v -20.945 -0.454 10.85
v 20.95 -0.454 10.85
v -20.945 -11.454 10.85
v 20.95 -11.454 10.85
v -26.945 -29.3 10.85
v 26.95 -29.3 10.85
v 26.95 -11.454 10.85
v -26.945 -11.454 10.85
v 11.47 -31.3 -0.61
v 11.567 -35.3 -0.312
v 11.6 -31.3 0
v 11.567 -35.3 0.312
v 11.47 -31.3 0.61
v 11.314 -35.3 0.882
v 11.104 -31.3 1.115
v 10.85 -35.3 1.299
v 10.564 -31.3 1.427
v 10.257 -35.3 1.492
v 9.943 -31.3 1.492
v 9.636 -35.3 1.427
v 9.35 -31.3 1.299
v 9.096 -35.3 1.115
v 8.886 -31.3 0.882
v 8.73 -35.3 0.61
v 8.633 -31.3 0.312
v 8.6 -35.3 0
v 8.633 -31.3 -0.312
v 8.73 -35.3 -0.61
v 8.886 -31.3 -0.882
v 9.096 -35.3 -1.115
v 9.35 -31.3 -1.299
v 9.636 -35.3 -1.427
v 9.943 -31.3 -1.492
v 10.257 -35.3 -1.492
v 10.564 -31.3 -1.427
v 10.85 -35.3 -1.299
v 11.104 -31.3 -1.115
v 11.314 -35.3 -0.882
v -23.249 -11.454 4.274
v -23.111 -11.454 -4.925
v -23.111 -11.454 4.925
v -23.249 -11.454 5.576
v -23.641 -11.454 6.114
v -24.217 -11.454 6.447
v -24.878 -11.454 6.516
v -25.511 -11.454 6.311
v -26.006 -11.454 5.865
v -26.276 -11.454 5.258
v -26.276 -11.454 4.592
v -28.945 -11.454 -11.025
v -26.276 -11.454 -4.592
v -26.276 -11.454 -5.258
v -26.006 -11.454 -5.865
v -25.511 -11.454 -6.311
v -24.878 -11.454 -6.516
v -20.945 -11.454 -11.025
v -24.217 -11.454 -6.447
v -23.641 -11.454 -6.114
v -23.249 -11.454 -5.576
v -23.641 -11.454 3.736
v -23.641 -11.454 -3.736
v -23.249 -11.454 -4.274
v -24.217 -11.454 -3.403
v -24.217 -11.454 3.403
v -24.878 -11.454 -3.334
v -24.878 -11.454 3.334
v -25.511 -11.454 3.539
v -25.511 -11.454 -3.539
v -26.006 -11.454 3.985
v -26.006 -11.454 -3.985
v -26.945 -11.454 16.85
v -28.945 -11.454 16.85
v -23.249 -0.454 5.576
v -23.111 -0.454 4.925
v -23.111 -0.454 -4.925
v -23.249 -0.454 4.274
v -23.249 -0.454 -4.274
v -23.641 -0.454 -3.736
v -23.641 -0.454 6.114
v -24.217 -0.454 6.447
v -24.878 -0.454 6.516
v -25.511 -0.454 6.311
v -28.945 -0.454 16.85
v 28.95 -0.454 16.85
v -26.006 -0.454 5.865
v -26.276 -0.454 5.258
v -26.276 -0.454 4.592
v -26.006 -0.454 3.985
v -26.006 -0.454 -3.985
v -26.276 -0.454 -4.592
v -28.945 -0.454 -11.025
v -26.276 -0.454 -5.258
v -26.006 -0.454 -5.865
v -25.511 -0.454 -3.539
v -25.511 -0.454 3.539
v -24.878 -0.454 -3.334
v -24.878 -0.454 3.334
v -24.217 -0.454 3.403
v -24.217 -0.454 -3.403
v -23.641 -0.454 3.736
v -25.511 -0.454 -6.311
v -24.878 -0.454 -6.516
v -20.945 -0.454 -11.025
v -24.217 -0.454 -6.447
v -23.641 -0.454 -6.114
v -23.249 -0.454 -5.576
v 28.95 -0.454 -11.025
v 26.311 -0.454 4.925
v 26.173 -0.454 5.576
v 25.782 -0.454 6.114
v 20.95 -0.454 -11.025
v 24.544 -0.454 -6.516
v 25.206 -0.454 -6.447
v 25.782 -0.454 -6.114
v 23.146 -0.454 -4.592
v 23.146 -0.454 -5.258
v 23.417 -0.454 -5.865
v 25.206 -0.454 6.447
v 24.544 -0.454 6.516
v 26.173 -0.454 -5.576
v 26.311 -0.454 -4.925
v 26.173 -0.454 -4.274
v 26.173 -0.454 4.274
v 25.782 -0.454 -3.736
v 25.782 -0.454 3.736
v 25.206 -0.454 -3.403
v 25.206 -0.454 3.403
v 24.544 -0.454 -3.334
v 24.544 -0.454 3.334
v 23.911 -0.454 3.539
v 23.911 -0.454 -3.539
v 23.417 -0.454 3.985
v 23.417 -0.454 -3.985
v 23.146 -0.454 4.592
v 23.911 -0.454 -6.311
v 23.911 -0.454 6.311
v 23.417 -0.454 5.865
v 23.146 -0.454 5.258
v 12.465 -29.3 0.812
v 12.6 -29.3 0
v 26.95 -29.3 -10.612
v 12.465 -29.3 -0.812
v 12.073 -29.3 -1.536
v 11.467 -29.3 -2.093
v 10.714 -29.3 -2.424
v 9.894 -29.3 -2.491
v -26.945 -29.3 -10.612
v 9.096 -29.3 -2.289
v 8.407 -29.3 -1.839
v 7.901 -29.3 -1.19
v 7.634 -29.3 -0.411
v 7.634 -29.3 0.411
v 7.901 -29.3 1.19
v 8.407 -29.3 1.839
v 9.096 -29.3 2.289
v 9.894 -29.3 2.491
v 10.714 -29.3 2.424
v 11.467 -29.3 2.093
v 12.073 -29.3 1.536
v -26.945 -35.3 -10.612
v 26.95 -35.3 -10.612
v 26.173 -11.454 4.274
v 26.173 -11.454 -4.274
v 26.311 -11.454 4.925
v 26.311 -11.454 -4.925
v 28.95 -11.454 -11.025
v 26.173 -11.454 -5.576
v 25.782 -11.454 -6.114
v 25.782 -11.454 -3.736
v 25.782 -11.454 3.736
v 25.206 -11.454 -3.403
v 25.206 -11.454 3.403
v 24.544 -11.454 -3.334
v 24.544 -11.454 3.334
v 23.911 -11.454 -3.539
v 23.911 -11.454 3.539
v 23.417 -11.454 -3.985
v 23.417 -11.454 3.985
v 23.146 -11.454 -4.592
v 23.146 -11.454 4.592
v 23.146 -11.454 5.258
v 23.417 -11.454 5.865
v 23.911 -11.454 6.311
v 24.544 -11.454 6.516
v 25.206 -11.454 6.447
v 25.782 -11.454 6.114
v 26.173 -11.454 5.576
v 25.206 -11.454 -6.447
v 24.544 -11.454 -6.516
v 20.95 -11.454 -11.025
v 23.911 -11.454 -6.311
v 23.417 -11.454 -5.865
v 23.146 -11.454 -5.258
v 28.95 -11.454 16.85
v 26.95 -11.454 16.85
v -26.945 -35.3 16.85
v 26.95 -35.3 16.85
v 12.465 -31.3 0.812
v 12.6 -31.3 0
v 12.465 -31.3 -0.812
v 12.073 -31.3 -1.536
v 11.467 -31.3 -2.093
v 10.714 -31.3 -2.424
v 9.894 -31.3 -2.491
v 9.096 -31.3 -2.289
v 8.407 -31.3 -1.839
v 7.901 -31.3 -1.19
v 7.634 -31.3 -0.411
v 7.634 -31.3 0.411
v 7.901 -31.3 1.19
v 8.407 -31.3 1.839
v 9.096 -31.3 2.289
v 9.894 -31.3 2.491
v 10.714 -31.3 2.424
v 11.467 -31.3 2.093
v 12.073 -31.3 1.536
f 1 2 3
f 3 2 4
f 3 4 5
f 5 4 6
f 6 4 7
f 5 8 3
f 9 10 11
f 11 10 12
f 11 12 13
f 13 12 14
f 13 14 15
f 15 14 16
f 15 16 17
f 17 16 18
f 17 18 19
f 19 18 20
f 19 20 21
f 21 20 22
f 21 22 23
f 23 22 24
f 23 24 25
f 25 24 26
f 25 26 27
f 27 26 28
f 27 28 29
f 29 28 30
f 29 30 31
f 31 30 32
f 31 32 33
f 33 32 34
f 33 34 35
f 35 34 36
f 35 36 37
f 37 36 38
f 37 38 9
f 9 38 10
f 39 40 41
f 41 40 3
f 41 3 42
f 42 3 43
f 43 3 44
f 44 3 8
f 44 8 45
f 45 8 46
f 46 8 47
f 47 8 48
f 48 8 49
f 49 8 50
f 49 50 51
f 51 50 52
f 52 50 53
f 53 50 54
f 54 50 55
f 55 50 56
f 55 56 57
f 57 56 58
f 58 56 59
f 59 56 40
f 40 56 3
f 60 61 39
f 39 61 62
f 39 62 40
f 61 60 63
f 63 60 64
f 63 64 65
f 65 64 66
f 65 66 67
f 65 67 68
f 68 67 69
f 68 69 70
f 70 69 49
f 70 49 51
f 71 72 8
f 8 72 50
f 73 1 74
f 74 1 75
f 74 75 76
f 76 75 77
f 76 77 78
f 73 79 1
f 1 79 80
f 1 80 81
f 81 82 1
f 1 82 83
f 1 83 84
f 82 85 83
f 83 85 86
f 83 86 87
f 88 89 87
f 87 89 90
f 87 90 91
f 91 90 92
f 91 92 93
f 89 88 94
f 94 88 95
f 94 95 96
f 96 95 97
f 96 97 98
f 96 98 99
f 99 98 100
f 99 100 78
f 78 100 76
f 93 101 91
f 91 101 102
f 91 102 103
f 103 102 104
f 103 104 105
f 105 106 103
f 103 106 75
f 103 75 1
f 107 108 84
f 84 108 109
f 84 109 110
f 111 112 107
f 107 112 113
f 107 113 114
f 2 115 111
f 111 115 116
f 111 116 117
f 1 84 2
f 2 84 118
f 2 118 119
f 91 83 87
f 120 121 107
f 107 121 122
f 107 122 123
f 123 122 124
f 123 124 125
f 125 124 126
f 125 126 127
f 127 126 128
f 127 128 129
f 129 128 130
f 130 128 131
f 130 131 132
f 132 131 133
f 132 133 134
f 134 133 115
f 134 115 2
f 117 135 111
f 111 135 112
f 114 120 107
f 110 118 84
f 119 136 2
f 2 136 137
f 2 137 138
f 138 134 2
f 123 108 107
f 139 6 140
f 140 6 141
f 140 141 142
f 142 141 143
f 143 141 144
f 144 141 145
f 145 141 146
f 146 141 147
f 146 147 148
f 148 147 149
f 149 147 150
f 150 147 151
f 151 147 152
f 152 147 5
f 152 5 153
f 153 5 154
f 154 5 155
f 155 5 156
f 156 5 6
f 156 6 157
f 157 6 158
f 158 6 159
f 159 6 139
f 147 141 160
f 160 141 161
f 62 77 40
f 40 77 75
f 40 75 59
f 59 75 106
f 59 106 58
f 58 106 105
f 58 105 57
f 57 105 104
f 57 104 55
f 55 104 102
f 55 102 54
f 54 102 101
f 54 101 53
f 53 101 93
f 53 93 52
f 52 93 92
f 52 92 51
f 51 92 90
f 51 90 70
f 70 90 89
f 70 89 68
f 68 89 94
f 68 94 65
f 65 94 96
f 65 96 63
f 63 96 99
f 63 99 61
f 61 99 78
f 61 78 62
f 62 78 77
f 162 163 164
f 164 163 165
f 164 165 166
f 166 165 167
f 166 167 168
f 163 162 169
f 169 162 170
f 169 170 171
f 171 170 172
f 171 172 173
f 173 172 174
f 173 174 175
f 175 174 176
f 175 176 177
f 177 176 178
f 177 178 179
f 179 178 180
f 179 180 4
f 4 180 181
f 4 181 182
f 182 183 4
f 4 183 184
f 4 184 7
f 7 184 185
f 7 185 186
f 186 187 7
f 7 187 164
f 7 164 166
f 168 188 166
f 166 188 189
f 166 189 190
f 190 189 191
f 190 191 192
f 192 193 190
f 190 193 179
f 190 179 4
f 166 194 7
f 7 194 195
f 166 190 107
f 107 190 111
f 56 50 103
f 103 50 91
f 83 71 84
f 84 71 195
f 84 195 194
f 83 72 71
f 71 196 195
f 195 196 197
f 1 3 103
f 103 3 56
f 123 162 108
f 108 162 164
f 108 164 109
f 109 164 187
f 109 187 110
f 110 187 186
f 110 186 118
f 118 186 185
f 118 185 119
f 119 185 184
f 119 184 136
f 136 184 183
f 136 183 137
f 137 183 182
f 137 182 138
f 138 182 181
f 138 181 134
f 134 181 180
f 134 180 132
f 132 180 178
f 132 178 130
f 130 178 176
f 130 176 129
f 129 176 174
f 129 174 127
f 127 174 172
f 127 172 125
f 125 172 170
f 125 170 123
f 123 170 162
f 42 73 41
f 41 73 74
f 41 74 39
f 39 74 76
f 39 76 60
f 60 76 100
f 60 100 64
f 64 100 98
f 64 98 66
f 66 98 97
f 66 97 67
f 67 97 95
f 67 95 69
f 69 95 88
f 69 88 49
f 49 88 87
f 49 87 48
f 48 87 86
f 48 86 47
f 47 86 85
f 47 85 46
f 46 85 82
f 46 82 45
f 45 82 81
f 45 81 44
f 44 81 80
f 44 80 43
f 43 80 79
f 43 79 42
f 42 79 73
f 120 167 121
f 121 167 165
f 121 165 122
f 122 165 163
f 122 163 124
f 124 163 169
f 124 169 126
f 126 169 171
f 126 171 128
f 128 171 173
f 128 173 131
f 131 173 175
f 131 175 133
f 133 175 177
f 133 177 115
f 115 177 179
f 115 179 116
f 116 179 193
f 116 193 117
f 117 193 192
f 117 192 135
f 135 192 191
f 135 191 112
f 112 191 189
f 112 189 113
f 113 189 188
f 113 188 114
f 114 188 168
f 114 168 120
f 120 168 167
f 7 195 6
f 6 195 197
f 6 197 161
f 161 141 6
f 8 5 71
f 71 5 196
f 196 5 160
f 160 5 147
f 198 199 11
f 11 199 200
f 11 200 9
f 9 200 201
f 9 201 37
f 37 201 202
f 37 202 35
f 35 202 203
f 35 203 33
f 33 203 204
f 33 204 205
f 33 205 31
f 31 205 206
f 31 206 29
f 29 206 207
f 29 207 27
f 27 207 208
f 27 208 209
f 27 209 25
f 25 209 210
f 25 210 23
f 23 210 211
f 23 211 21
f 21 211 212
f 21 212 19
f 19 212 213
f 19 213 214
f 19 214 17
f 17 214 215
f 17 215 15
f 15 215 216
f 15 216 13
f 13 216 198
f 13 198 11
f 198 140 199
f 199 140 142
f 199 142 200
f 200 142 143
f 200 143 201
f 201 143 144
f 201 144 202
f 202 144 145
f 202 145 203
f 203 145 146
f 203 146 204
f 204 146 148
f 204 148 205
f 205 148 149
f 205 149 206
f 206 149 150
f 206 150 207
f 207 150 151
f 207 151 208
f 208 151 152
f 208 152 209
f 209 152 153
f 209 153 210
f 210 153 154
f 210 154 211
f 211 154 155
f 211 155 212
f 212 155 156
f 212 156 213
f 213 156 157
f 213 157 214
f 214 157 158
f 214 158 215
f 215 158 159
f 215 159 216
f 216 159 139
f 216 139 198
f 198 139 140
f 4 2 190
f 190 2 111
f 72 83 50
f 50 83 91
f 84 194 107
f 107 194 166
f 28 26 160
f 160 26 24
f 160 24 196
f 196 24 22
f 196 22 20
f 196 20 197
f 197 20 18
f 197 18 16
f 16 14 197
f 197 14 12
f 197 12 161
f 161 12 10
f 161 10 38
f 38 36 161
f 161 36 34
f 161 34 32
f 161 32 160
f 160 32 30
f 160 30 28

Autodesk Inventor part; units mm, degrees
ref_plane "Work Plane1" through (-19.25, -0.5, 9.85) normal (0, 0, 1) x (1, 0, 0)
sketch "Sketch1" plane through (-19.25, -0.5, 9.85) normal (0, 0, 1) x (1, 0, 0)
  line L0 (-0.695, -27.8) -> (39.2, -27.8)
  line L1 (39.2, -27.8) -> (39.2, 8.9608)
  line L2 (39.2, 8.9608) -> (-0.695, 8.9608)
  line L3 (-0.695, 8.9608) -> (-0.695, -27.8)
  point P0 (19.25, 0.5)
extrude "Extrusion1" add sketch "Sketch1" along normal blind 3
ref_plane "Work Plane2" through (-19.25, -0.5, 12.85) normal (0, 0, 1) x (1, 0, 0)
sketch "Sketch2" plane through (-19.25, -0.5, 12.85) normal (0, 0, 1) x (1, 0, 0)
  line L0 (39.2, -27.8) -> (39.2, 8.9608) projected
  line L1 (39.2, -27.8) -> (-0.695, -27.8)
  line L2 (-0.695, -27.8) -> (-0.695, 8.9608)
  line L3 (-0.695, 8.9608) -> (39.2, 8.9608)
  line L4 (39.2, 8.9608) -> (39.2, -27.8)
  point P0 (19.25, 0.5)
  point P1 (39.2, 8.9608)
extrude "Extrusion2" add sketch "Sketch2" along normal blind 5
ref_plane "Work Plane4" through (19.95, -28.3, 9.85) normal (1, 0, 0) x (0, 0, -1)
sketch "Sketch3" plane through (19.95, -28.3, 9.85) normal (1, 0, 0) x (0, 0, -1)
  line L0 (0, 0) -> (0, 36.7608) projected
  line L1 (0, 0) -> (-8, 0) projected
  line L2 (0, 36.7608) -> (-2, 36.7608)
  line L3 (-2, 36.7608) -> (-2, 0)
  line L4 (-2, 0) -> (0, 0)
  line L5 (0, 0) -> (0, 36.7608)
  point P0 (9.85, 28.3)
  dimension "d4" = 2
extrude "Extrusion3" cut sketch "Sketch3" against normal blind 50
ref_plane "Work Plane3" through (19.95, -28.3, 17.85) normal (1, 0, 0) x (0, 0, -1)
sketch "Sketch4" plane through (19.95, -28.3, 17.85) normal (1, 0, 0) x (0, 0, -1)
  line L0 (6, 0) -> (0, 0) projected
  line L1 (6, 36.7608) -> (0, 36.7608) projected
  line L2 (0, 0) -> (1, 0)
  line L3 (1, 0) -> (1, 36.7608)
  line L4 (1, 36.7608) -> (0, 36.7608)
  line L5 (0, 36.7608) -> (0, 0)
  point P0 (17.85, 28.3)
  point P1 (1, 0)
  dimension "d7" = 1
extrude "Extrusion4" cut sketch "Sketch4" against normal blind 50
ref_plane "Work Plane5" through (19.95, -28.3, 11.85) normal (1, 0, 0) x (0, 0, -1)
sketch "Sketch5" plane through (19.95, -28.3, 11.85) normal (1, 0, 0) x (0, 0, -1)
  line L0 (-5, 36.7608) -> (-5, 0) projected
  line L1 (0, 0) -> (0, 36.7608) projected
  line L2 (-5, 36.7608) -> (0, 36.7608)
  line L3 (0, 36.7608) -> (0, 0)
  line L4 (0, 0) -> (-5, 0)
  line L5 (-5, 0) -> (-5, 36.7608)
  point P0 (11.85, 28.3)
extrude "Extrusion5" add sketch "Sketch5" along normal blind 7
ref_plane "Work Plane6" through (-19.945, -28.3, 11.85) normal (0, 0, -1) x (-1, 0, 0)
sketch "Sketch6" plane through (-19.945, -28.3, 11.85) normal (0, 0, -1) x (-1, 0, 0)
  line L0 (-46.895, 0) -> (-46.895, 36.7608) projected
  line L1 (-46.895, 27.8459) -> (-40.895, 27.8459)
  line L2 (-40.895, 27.8459) -> (-40.895, 11.8459)
  line L3 (-40.895, 11.8459) -> (-46.895, 11.8459)
  line L4 (-46.895, 11.8459) -> (-46.895, 27.8459)
  point P0 (-19.945, 28.3)
  dimension "d12" = 6
  dimension "d13" = 16
extrude "Extrusion6" add sketch "Sketch6" along normal blind 22.875
sketch "Sketch7" plane through (20.95, -0.4541, 11.85) normal (0, 1, 0) x (1, 0, 0)
  arc A0 (5.4164, 8.2173) -> (5.4164, 5.6327) centre (3.7611, 6.925) ccw projected
  circle A1 centre (3.7611, 6.925) radius 2.5
  arc A2 (5.4164, 18.0673) -> (5.4164, 15.4827) centre (3.7611, 16.775) ccw projected
  circle A3 centre (3.7611, 16.775) radius 2.5
  point P0 (-20.95, 11.85)
  dimension "d16" = 5
  dimension "d17" = 5
extrude "Extrusion7" cut sketch "Sketch7" against normal blind 22.875
ref_plane "Work Plane7" through (26.95, -28.3, 11.85) normal (1, 0, 0) x (0, 0, -1)
sketch "Sketch8" plane through (26.95, -28.3, 11.85) normal (1, 0, 0) x (0, 0, -1)
  line L0 (0, 11.8459) -> (22.875, 11.8459) projected
  line L1 (22.875, 27.8459) -> (22.875, 11.8459) projected
  line L2 (0, 11.8459) -> (22.875, 11.8459)
  line L3 (22.875, 11.8459) -> (22.875, 16.8459)
  line L4 (22.875, 16.8459) -> (0, 16.8459)
  line L5 (0, 16.8459) -> (0, 11.8459)
  point P0 (11.85, 28.3)
  dimension "d20" = 5
extrude "Extrusion8" cut sketch "Sketch8" against normal blind 6.7
ref_plane "Work Plane8" through (-19.945, -28.3, 11.85) normal (-1, 0, 0) x (0, 0, 1)
sketch "Sketch9" plane through (-19.945, -28.3, 11.85) normal (-1, 0, 0) x (0, 0, 1)
  line L0 (0, 36.7608) -> (0, 0) projected
  line L1 (5, 0) -> (0, 0) projected
  line L2 (0, 36.7608) -> (5, 36.7608)
  line L3 (5, 36.7608) -> (5, 0)
  line L4 (5, 0) -> (0, 0)
  line L5 (0, 0) -> (0, 36.7608)
  point P0 (-11.85, 28.3)
extrude "Extrusion9" add sketch "Sketch9" along normal blind 7
ref_plane "Work Plane10" through (26.95, -0.4541, 11.85) normal (0, 0, -1) x (-1, 0, 0)
sketch "Sketch11" plane through (26.95, -0.4541, 11.85) normal (0, 0, -1) x (-1, 0, 0)
  line L0 (53.895, -27.8459) -> (53.895, 8.9148) projected
  line L1 (53.895, 0) -> (47.895, 0)
  line L2 (47.895, 0) -> (47.895, -11)
  line L3 (47.895, -11) -> (53.895, -11)
  line L4 (53.895, -11) -> (53.895, 0)
  point P0 (26.95, 0.4541)
  dimension "d25" = 6
extrude "Extrusion10" add sketch "Sketch11" along normal blind 22.875
sketch "Sketch12" plane through (-26.945, -0.4541, 11.85) normal (0, 1, 0) x (1, 0, 0)
  arc A0 (0.5786, 15.4827) -> (0.5786, 18.0673) centre (2.2339, 16.775) ccw projected
  circle A1 centre (2.2339, 16.775) radius 2.5
  arc A2 (0.5786, 5.6327) -> (0.5786, 8.2173) centre (2.2339, 6.925) ccw projected
  circle A3 centre (2.2339, 6.925) radius 2.5
  point P0 (26.945, 11.85)
  dimension "d28" = 5
  dimension "d29" = 5
extrude "Extrusion11" cut sketch "Sketch12" against normal blind 22.875
ref_plane "Work Plane11" through (-26.945, -28.3, 11.85) normal (-1, 0, 0) x (0, 0, 1)
sketch "Sketch13" plane through (-26.945, -28.3, 11.85) normal (-1, 0, 0) x (0, 0, 1)
  line L0 (0, 16.8459) -> (0, 27.8459) projected
  line L1 (5, 36.7608) -> (0, 36.7608) projected
  line L2 (0, 27.8459) -> (5, 27.8459)
  line L3 (5, 27.8459) -> (5, 36.7608)
  line L4 (5, 36.7608) -> (0, 36.7608)
  line L5 (0, 36.7608) -> (0, 27.8459)
  point P0 (-11.85, 28.3)
extrude "Extrusion12" cut sketch "Sketch13" against normal blind 67.325
ref_plane "Work Plane9" through (26.95, -28.3, 11.85) normal (0, -1, 0) x (1, 0, 0)
sketch "Sketch14" plane through (26.95, -28.3, 11.85) normal (0, -1, 0) x (1, 0, 0)
  line L0 (0, 5) -> (0, 0) projected
  line L1 (0, 5) -> (-53.895, 5) projected
  line L2 (0, 0) -> (-53.895, 0)
  line L3 (-53.895, 0) -> (-53.895, 5)
  line L4 (-53.895, 5) -> (0, 5)
  line L5 (0, 5) -> (0, 0)
  point P0 (-26.95, -11.85)
extrude "Extrusion13" add sketch "Sketch14" along normal blind 5
ref_plane "Work Plane12" through (26.95, -11.4541, 11.85) normal (0, 0, -1) x (-1, 0, 0)
sketch "Sketch15" plane through (26.95, -11.4541, 11.85) normal (0, 0, -1) x (-1, 0, 0)
  line L0 (53.895, -21.8459) -> (0, -21.8459) projected
  line L1 (53.895, 11) -> (53.895, -21.8459) projected
  line L2 (0, -21.8459) -> (53.895, -21.8459)
  line L3 (53.895, -21.8459) -> (53.895, -17.8459)
  line L4 (53.895, -17.8459) -> (0, -17.8459)
  line L5 (0, -17.8459) -> (0, -21.8459)
  point P0 (26.95, 11.4541)
  dimension "d36" = 4
extrude "Extrusion14" add sketch "Sketch15" along normal blind 22.4625
ref_plane "Work Plane13" through (-26.945, -29.3, 11.85) normal (0, 1, 0) x (1, 0, 0)
sketch "Sketch16" plane through (-26.945, -29.3, 11.85) normal (0, 1, 0) x (1, 0, 0)
  line L0 (53.895, 0) -> (53.895, 22.4625) projected
  line L1 (0, 0) -> (0, 22.4625) projected
  line L2 (53.895, 0) -> (0, 0)
  line L3 (0, 0) -> (0, 1)
  line L4 (0, 1) -> (53.895, 1)
  line L5 (53.895, 1) -> (53.895, 0)
  point P0 (26.945, 11.85)
  point P1 (53.895, 1)
  dimension "d39" = 1
extrude "Extrusion15" add sketch "Sketch16" along normal blind 30
ref_plane "Work Plane14" through (26.95, -28.3, 11.85) normal (1, 0, 0) x (0, 0, -1)
sketch "Sketch17" plane through (26.95, -28.3, 11.85) normal (1, 0, 0) x (0, 0, -1)
  line L0 (0, 29) -> (1, 29) projected
  line L1 (5.8126, 27.8459) -> (1, 27.8459) projected
  line L2 (0, 29) -> (1, 29)
  line L3 (1, 29) -> (1, 27.8459)
  line L4 (1, 27.8459) -> (0, 27.8459)
  line L5 (0, 27.8459) -> (0, 29)
  point P0 (11.85, 28.3)
extrude "Extrusion16" cut sketch "Sketch17" against normal blind 100
sketch "Sketch19" plane through (26.95, -33.3, 11.85) normal (0, -1, 0) x (1, 0, 0)
  circle A0 centre (-16.85, -11.85) radius 5
  circle A1 centre (-16.85, -11.85) radius 1.5
  point P0 (-26.95, -11.85)
  dimension "d47" = 10
  dimension "d50" = 3
extrude "Extrusion20" cut sketch "Sketch19" against normal blind 10 contours A1
sketch "Sketch20" plane through (26.95, -33.3, 11.85) normal (0, -1, 0) x (1, 0, 0)
  line L0 (-53.895, -22.4625) -> (0, -22.4625) projected
  line L1 (-53.895, 5) -> (-53.895, -22.4625) projected
  line L2 (0, -22.4625) -> (-53.895, -22.4625)
  line L3 (-53.895, -22.4625) -> (-53.895, 5)
  line L4 (-53.895, 5) -> (0, 5)
  line L5 (0, 5) -> (0, -22.4625)
  point P0 (-26.95, -11.85)
extrude "Extrusion21" add sketch "Sketch20" along normal blind 2
sketch "Sketch21" plane through (-26.945, -29.3, -10.6125) normal (0, 1, 0) x (1, 0, 0)
  circle A0 centre (37.045, -10.6125) radius 1.5 projected
  circle A1 centre (37.045, -10.6125) radius 1.5
  point P0 (26.945, -10.6125)
extrude "Extrusion22" cut sketch "Sketch21" against normal blind 10
sketch "Sketch22" plane through (-26.945, -29.3, -10.6125) normal (0, 1, 0) x (1, 0, 0)
  circle A0 centre (37.045, -10.6125) radius 1.5 projected
  circle A1 centre (37.045, -10.6125) radius 2.5
  point P0 (26.945, -10.6125)
  dimension "d59" = 5
extrude "Extrusion23" cut sketch "Sketch22" against normal blind 2
sketch "Sketch23" plane through (-19.945, -28.3, -11.025) normal (0, 0, -1) x (-1, 0, 0)
  line L0 (-46.895, 27.8459) -> (-46.895, 16.8459) projected
  line L1 (-46.895, 27.8459) -> (-48.895, 27.8459)
  line L2 (-48.895, 27.8459) -> (-48.895, 16.8459)
  line L3 (-48.895, 16.8459) -> (-46.895, 16.8459)
  line L4 (-46.895, 16.8459) -> (-46.895, 27.8459)
  line L5 (7, 16.8459) -> (7, 27.8459) projected
  line L6 (7, 27.8459) -> (9, 27.8459)
  line L7 (9, 27.8459) -> (9, 16.8459)
  line L8 (9, 16.8459) -> (7, 16.8459)
  line L9 (7, 16.8459) -> (7, 27.8459)
  point P0 (-19.945, 28.3)
  dimension "d62" = 2
  dimension "d63" = 2
extrude "Extrusion24" add sketch "Sketch23" against normal up to surface (27.875 mm away)
sketch "Sketch24" plane through (-20.945, -0.4541, 10.85) normal (0, 1, 0) x (1, 0, 0)
  arc A0 (47.895, 7.0374) -> (47.895, 4.8126) centre (45.6561, 5.925) ccw projected
  circle A1 centre (45.6561, 5.925) radius 1.6
  arc A2 (47.895, 16.8874) -> (47.895, 14.6626) centre (45.6561, 15.775) ccw projected
  circle A3 centre (45.6561, 15.775) radius 1.6
  circle A4 centre (45.6561, 5.925) radius 2.5
  circle A5 centre (45.6561, 15.775) radius 2.5
  point P0 (20.945, 10.85)
  point P1 (47.895, 4.8126)
  dimension "d66" = 3.2
  dimension "d67" = 3.2
extrude "Extrusion25" add sketch "Sketch24" against normal up to surface (11 mm away)
sketch "Sketch25" plane through (-20.945, -0.4541, 10.85) normal (0, 1, 0) x (1, 0, 0)
  arc A0 (-6, 4.8025) -> (-6, 7.0475) centre (-3.7661, 5.925) ccw projected
  circle A1 centre (-3.7661, 5.925) radius 1.6
  arc A2 (-6, 14.6525) -> (-6, 16.8975) centre (-3.7661, 15.775) ccw projected
  circle A3 centre (-3.7661, 15.775) radius 1.6
  circle A4 centre (-3.7661, 15.775) radius 2.5
  circle A5 centre (-3.7661, 5.925) radius 2.5
  point P0 (20.945, 10.85)
  point P1 (-6, 7.0475)
  dimension "d70" = 3.2
  dimension "d71" = 3.2
  dimension "d72" = 5
  dimension "d73" = 5
extrude "Extrusion26" add sketch "Sketch25" against normal up to surface (11 mm away)
properties part number "MG996RServoHolder" material "钢"
